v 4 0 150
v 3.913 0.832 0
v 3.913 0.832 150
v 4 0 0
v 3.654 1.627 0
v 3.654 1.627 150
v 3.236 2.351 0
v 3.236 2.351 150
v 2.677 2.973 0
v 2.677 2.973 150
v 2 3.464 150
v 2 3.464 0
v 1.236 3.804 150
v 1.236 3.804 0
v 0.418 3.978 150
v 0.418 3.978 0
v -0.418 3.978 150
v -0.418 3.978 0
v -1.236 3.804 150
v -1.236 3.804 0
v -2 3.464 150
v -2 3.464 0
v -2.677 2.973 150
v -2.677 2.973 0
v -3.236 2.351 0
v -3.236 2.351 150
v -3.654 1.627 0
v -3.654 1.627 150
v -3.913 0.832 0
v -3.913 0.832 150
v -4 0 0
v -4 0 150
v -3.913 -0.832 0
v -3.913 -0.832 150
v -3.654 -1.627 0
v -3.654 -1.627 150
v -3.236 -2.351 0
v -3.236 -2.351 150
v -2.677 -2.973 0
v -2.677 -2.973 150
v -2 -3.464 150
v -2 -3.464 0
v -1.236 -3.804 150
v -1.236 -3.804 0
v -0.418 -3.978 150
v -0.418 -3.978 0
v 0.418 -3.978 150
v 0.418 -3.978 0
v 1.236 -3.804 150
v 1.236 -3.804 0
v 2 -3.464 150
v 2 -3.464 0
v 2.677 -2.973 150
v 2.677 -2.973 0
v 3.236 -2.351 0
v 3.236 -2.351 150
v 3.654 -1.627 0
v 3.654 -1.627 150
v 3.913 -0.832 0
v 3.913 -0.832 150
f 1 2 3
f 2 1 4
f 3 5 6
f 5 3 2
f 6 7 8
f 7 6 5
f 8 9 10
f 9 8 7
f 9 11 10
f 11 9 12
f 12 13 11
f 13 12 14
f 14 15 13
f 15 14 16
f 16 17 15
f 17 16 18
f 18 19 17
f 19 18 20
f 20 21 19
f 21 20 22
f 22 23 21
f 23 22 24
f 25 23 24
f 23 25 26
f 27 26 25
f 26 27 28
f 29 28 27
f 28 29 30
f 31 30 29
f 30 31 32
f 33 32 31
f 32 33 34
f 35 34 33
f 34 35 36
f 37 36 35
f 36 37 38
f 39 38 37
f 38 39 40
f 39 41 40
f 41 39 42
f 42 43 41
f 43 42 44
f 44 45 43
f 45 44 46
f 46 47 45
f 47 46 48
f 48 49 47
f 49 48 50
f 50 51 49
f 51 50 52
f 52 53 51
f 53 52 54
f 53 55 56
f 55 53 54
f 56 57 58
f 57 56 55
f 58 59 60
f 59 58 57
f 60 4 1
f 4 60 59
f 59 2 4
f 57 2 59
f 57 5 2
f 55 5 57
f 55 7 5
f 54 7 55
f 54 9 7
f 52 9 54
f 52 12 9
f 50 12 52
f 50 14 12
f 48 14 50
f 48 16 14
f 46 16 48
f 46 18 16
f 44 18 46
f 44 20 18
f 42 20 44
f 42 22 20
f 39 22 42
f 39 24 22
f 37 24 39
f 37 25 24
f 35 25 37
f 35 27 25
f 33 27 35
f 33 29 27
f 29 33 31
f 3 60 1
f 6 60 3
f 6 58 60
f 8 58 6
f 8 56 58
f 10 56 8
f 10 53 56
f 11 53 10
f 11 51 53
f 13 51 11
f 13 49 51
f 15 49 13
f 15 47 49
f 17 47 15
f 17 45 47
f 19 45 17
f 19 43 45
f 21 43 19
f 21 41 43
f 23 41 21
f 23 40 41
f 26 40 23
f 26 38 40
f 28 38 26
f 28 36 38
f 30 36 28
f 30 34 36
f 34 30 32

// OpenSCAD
// Simple shaft for the flywheel stand
// Sized to fit standard 608 skateboard bearings

shaft_diameter = 8;   // mm
shaft_length = 150;   // mm

module shaft(shaft_d, shaft_len) {
    cylinder(r = shaft_d / 2, h = shaft_len, $fs = 0.5);
}

shaft(shaft_diameter, shaft_length);
